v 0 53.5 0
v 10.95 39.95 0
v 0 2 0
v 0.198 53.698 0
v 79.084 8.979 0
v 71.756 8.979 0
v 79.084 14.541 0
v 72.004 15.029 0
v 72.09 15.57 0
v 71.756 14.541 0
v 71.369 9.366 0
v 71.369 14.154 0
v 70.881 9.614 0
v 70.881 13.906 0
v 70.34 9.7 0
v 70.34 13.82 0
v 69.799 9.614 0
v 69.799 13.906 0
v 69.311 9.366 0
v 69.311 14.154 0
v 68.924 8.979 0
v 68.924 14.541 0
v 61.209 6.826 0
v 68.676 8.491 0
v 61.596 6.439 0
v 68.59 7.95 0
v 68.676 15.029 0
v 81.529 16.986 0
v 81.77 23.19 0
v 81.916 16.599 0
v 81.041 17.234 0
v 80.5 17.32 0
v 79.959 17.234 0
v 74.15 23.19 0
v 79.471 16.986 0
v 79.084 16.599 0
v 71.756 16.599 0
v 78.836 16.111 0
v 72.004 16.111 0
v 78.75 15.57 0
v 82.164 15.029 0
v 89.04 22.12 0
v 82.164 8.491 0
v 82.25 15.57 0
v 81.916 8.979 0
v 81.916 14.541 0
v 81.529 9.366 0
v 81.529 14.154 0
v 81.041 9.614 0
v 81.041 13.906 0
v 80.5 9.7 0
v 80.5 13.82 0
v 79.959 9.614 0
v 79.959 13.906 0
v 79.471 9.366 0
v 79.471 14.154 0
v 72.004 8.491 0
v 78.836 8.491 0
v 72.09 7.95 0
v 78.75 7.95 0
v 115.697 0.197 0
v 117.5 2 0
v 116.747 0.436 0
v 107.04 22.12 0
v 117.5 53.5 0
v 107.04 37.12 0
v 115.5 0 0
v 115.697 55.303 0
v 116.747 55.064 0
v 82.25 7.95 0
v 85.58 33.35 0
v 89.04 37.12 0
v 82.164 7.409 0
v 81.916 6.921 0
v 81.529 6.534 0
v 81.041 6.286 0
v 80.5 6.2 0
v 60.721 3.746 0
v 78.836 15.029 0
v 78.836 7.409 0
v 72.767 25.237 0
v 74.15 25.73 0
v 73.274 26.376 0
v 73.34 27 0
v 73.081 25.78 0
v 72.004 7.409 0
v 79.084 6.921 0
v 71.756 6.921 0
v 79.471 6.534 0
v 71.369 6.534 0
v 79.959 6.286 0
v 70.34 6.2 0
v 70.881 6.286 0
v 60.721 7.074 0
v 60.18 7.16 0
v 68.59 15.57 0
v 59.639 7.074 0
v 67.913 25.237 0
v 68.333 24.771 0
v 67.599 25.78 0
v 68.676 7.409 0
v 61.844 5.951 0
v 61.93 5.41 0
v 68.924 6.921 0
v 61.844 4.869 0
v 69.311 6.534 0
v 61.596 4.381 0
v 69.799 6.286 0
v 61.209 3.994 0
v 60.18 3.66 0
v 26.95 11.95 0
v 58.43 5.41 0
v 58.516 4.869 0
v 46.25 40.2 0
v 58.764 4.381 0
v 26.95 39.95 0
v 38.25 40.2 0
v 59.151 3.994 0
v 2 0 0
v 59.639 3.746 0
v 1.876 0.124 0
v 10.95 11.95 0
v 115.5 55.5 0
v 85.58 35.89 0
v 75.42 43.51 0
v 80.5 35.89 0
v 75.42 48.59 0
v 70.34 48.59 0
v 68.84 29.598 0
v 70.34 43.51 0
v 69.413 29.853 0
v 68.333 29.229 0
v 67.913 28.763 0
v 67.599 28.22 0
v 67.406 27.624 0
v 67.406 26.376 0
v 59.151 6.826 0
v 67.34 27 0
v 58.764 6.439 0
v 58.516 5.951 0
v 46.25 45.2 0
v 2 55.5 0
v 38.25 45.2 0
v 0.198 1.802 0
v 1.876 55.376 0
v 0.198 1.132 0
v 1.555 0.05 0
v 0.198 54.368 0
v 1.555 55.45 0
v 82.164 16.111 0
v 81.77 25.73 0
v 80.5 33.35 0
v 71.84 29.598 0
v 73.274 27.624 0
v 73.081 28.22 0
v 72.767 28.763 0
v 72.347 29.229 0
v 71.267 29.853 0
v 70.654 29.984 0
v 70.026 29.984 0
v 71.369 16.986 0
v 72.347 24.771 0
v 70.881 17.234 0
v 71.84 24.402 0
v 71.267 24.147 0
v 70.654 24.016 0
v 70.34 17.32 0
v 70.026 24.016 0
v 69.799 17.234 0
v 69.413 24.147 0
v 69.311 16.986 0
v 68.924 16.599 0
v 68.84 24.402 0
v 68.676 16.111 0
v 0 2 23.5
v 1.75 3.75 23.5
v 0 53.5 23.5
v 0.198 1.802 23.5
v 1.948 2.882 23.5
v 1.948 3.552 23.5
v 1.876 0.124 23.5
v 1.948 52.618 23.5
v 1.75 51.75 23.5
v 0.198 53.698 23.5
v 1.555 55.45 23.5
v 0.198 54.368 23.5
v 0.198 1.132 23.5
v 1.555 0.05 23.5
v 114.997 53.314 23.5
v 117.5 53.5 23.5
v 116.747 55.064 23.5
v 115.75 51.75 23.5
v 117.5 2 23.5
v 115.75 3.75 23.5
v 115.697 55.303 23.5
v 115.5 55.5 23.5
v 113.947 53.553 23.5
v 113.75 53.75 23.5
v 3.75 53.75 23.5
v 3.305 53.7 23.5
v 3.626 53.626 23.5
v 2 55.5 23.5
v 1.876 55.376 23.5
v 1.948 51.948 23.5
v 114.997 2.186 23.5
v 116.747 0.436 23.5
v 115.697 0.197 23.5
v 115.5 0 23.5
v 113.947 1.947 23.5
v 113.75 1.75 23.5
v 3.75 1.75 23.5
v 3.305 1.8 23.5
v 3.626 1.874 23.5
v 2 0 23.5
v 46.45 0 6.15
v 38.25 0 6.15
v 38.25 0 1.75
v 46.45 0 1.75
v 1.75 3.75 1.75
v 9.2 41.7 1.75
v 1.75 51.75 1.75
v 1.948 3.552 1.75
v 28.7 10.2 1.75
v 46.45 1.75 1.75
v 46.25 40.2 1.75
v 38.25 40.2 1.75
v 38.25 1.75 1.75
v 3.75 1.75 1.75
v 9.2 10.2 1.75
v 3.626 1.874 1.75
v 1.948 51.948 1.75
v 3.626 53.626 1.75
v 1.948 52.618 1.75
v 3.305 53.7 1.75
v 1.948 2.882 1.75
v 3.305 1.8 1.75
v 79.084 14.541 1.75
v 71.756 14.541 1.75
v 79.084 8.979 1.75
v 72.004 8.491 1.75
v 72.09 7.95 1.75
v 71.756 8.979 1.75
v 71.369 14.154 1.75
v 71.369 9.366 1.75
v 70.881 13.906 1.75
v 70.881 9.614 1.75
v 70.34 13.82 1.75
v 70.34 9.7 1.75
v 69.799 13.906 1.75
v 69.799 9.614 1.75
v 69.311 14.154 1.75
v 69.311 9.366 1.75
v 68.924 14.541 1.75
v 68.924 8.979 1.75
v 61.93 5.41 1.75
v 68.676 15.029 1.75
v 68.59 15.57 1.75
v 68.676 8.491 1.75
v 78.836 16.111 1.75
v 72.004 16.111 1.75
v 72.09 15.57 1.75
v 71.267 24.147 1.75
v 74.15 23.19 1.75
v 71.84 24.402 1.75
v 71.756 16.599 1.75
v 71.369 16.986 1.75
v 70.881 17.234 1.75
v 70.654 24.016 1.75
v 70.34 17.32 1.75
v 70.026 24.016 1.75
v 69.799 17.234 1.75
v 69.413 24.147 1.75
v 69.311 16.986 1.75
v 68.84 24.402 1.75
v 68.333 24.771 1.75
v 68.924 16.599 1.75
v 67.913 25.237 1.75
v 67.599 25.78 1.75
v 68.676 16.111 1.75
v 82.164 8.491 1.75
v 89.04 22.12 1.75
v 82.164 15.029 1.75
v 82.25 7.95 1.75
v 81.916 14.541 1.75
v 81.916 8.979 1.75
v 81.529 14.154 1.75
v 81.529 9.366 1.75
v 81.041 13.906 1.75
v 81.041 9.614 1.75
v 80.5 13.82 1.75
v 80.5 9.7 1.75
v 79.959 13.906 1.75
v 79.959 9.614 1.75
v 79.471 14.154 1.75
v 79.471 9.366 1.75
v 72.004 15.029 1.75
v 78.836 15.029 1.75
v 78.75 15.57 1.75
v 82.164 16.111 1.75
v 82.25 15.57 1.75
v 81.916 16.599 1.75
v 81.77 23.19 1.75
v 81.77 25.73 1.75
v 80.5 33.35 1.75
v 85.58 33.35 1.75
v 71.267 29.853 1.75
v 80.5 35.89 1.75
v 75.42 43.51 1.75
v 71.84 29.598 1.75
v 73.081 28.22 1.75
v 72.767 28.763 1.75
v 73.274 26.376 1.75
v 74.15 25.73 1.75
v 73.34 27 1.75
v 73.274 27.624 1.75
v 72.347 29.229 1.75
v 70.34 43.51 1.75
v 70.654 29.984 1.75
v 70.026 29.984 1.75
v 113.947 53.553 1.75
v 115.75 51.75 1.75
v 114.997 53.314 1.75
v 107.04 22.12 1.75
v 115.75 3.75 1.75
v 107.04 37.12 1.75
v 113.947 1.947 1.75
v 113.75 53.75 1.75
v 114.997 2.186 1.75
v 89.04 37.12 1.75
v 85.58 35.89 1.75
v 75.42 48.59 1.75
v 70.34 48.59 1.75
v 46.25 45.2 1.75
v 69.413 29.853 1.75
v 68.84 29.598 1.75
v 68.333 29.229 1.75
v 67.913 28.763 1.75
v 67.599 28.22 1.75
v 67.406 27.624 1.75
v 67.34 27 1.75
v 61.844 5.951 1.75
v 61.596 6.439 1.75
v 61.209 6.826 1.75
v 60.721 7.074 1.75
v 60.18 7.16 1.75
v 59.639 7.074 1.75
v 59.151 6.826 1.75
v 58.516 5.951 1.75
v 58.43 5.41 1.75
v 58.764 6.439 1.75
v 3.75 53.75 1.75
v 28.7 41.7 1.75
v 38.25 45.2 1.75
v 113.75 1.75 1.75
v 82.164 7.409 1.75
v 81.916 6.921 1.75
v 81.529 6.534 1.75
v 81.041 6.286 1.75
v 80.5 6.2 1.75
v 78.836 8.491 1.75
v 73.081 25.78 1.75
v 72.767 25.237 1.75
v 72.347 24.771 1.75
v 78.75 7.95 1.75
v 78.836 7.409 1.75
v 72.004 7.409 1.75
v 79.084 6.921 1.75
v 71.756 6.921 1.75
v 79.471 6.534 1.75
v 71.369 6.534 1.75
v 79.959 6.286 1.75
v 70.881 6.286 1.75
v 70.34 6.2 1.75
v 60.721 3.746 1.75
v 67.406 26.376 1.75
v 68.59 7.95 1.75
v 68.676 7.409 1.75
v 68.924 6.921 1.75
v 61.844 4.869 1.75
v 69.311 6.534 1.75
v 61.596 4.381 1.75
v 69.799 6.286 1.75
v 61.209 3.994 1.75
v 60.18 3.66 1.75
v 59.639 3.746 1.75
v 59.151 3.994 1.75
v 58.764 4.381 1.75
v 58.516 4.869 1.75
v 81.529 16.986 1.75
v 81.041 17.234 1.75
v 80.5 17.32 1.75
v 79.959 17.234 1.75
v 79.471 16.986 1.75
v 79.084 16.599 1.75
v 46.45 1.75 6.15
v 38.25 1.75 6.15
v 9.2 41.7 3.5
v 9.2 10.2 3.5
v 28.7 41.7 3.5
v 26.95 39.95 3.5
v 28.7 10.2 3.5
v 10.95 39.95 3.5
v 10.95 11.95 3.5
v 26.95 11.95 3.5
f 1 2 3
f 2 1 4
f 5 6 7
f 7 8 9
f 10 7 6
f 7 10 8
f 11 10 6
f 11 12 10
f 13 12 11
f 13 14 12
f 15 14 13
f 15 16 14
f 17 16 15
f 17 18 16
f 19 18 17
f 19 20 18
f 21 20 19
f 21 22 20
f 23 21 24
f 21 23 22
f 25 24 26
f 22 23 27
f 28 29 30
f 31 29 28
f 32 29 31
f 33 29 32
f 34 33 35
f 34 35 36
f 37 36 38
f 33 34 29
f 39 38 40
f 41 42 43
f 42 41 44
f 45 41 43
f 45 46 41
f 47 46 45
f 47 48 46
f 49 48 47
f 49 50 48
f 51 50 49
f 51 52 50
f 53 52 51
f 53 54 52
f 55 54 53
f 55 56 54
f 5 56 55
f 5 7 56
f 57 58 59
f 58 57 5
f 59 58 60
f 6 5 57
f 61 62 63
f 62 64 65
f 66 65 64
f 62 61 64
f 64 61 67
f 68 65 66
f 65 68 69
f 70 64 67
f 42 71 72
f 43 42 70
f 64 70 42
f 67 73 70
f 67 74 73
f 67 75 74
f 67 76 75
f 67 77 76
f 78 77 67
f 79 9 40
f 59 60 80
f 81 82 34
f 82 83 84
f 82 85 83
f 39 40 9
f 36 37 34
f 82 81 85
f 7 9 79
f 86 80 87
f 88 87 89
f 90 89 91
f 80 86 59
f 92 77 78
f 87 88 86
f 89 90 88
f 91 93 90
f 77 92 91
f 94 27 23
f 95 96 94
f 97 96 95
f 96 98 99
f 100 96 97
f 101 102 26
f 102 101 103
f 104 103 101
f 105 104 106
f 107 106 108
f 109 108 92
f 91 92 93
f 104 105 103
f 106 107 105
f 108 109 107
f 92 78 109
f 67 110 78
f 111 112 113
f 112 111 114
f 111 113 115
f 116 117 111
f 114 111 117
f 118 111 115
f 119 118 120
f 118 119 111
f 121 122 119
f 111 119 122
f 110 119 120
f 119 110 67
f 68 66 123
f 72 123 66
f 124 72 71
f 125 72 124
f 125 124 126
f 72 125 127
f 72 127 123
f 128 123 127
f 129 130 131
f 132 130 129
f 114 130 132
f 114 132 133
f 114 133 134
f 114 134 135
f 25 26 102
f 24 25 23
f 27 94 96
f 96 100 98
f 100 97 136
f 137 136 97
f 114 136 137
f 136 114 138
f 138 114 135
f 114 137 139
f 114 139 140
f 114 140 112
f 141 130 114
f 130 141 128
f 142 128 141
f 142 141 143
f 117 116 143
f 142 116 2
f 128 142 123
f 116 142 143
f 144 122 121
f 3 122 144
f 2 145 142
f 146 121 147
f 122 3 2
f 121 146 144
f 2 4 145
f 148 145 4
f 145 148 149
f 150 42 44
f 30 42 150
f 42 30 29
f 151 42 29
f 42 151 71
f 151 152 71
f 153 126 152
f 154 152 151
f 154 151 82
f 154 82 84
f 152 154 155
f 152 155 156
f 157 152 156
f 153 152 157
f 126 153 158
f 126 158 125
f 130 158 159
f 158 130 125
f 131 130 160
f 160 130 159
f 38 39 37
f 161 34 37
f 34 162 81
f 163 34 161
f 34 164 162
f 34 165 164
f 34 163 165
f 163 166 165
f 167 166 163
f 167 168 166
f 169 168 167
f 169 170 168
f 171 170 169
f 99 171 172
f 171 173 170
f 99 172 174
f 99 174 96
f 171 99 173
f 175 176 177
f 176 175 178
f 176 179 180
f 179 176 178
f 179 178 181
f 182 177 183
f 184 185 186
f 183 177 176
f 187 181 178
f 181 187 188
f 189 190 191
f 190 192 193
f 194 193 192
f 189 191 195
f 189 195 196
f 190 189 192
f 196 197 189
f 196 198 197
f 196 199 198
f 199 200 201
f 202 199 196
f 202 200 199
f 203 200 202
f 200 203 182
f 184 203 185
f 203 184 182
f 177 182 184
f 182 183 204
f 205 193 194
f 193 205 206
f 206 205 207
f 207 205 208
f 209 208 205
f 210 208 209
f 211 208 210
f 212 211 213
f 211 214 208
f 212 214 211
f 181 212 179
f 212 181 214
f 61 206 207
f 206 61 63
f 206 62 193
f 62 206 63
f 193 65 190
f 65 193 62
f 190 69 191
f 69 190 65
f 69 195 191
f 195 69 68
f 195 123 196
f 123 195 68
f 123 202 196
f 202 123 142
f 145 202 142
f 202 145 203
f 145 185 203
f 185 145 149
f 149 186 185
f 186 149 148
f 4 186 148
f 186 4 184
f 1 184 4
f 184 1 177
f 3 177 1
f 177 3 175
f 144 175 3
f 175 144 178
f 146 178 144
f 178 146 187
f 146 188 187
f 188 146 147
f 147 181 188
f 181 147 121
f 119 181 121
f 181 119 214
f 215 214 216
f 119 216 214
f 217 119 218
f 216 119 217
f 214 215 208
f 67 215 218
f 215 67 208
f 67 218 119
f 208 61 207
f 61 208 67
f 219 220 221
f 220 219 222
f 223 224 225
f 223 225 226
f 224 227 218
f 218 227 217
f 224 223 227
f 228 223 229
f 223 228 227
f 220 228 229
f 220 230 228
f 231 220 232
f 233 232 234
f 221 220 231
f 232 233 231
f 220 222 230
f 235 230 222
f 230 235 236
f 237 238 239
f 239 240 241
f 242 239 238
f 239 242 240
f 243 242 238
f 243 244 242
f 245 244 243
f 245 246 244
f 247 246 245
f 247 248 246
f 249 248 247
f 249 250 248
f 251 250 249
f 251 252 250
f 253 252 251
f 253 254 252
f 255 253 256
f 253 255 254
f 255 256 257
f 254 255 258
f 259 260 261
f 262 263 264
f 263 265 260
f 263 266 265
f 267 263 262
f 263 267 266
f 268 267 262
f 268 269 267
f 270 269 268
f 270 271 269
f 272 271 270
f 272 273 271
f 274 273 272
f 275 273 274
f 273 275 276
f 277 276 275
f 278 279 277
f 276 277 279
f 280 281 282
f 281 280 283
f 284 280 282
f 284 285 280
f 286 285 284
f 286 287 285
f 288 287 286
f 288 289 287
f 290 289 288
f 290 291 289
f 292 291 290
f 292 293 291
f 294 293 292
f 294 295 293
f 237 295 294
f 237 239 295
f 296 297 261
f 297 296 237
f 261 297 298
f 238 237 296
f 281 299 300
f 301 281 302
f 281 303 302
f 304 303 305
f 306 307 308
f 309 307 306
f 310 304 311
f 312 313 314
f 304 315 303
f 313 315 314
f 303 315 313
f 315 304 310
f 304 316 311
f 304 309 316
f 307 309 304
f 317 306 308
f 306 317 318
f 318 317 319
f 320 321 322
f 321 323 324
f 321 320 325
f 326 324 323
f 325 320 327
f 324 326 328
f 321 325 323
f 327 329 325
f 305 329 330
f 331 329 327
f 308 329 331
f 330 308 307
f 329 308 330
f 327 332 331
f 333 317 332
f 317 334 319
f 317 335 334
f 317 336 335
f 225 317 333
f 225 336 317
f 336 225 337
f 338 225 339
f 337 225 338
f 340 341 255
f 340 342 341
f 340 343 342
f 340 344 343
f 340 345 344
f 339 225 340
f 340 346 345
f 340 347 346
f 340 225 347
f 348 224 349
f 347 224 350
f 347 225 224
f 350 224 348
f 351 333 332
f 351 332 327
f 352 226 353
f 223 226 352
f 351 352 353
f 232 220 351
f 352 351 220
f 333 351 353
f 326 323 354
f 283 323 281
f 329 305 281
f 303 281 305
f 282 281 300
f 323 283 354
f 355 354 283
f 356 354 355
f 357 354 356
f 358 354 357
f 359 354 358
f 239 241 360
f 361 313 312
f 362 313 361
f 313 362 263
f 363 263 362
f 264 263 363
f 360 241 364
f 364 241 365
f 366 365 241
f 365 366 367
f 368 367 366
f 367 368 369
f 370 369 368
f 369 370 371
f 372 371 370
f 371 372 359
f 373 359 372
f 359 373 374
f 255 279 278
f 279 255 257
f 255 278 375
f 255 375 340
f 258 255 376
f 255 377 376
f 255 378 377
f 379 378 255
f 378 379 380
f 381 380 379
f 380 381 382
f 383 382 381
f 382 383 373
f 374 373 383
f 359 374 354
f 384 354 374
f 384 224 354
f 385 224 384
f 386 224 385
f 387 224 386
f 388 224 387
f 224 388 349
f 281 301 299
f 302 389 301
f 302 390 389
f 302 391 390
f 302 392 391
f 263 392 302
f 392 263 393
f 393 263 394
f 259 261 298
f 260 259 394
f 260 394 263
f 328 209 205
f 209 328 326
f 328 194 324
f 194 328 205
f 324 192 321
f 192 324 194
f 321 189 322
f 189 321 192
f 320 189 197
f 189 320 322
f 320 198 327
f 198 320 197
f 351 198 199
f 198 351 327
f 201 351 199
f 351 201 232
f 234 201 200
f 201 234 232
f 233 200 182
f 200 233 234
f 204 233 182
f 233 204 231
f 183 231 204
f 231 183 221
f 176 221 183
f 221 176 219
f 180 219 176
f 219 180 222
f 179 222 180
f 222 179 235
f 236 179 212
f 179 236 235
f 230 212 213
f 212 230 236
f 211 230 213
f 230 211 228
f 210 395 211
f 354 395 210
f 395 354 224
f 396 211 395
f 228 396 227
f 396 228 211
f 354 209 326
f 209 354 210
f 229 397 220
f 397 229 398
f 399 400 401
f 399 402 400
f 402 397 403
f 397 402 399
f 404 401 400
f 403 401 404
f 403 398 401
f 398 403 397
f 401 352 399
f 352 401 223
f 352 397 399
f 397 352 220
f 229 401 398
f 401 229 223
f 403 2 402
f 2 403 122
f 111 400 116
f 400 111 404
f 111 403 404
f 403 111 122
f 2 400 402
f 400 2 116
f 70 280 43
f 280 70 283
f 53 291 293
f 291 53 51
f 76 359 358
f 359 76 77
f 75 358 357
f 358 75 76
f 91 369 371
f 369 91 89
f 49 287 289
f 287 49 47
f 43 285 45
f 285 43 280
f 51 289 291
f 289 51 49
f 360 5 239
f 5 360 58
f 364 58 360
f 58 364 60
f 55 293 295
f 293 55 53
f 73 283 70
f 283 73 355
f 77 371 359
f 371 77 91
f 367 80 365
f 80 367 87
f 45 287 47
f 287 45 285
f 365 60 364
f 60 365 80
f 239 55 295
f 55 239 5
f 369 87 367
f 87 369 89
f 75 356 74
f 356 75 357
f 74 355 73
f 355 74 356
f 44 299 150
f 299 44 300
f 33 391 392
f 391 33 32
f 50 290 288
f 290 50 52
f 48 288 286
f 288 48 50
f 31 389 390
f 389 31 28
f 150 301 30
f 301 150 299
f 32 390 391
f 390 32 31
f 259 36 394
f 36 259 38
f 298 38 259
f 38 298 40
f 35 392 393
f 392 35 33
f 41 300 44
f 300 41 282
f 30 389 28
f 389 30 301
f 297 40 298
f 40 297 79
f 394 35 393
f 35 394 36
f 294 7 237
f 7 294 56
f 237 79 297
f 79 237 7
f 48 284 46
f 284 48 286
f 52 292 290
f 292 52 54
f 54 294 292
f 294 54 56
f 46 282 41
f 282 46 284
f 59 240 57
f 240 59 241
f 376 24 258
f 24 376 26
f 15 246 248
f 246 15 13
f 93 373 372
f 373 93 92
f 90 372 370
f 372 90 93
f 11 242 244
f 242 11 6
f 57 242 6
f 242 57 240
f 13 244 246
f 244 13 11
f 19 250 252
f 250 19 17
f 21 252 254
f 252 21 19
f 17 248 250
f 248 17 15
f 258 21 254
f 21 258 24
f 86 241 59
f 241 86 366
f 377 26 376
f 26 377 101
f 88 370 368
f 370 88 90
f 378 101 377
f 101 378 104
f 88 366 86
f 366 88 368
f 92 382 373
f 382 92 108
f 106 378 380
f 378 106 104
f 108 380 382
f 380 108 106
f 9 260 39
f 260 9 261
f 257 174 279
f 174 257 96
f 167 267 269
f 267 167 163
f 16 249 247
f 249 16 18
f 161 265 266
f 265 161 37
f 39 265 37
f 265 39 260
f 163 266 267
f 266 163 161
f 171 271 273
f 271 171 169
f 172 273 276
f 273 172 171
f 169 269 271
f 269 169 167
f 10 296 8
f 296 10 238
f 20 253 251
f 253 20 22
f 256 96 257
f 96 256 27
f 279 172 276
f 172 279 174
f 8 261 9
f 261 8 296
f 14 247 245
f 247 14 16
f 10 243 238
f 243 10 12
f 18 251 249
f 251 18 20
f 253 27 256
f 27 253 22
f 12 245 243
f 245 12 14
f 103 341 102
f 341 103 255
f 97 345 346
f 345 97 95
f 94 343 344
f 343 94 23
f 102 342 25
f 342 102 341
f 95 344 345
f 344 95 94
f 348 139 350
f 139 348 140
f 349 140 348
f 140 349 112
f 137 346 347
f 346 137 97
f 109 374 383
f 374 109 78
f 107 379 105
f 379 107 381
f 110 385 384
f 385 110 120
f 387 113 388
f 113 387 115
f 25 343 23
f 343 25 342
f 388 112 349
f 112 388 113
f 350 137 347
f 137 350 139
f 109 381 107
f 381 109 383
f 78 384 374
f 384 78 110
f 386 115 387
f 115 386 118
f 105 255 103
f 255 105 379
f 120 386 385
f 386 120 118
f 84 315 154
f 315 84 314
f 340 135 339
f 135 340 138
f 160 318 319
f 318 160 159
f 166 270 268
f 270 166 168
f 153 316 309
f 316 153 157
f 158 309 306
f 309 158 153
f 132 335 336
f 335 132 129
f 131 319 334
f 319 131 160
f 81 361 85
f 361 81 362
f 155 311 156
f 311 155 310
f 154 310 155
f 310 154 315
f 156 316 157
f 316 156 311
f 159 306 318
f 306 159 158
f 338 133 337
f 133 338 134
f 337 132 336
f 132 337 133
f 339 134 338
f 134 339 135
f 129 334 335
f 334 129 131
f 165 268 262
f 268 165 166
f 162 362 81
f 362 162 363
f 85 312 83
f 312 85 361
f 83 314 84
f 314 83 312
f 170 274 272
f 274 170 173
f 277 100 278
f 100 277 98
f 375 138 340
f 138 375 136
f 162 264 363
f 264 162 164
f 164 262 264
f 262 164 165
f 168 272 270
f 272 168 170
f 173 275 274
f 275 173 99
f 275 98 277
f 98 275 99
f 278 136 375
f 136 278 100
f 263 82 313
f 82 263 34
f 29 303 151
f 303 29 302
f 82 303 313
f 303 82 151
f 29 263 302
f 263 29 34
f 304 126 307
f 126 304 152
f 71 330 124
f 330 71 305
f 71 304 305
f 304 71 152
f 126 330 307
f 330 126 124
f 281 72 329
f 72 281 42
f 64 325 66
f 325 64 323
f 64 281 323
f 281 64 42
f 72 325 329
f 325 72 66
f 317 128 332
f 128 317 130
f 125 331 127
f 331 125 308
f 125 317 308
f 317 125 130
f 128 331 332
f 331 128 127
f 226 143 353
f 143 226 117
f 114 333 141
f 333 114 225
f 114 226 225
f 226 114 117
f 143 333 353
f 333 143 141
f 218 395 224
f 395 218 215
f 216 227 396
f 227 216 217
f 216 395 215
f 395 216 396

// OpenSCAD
// Default is the working fine version/no sticker on screen

WallThickness = 1.75;
BaseHeight = 20+2*WallThickness;
BaseDepth = 52+2*WallThickness;;
BaseWidth = 114+2*WallThickness;
CornerRadius = 2;
ScreenWidth = 28;
ScreenHeight = 16;
ScreenX = 9.2+WallThickness;
ScreenY = 10.2+WallThickness;
FirstButtonX = 33.5+WallThickness;
FirstButtonY = 6.2+WallThickness;
ButtonSize = 3.5;
ButtonStep = 2.54;

module RoundedRectangle($Width=BaseWidth, $Depth=BaseDepth, $Radius=CornerRadius) 
{
    polygon(points = [[$Radius, 0], [$Width-$Radius, 0],[$Width, $Radius], [$Width, $Depth-$Radius], [$Width-$Radius, $Depth], [$Radius, $Depth], [0, $Depth-$Radius], [0, $Radius]], paths=[[0,1,2,3,4,5,6,7]]);
        
    translate([$Radius,$Radius,0]){
        circle(r=$Radius);
    }        
    translate([$Width-$Radius,$Radius,0]){
        circle(r=$Radius);
    }
    
    translate([$Width-$Radius,$Depth-$Radius,0]){ 
        circle(r=$Radius);
    }
   
    translate([$Radius,$Depth-$Radius,0]){ 
        circle(r=$Radius);
    }
}

module base3D($Width=BaseWidth, $Depth=BaseDepth, $Height=BaseHeight, $Radius=CornerRadius, $Thickness=WallThickness)
{
    difference()
    {
        linear_extrude(height = $Height, center = false, convexity = 0, twist = 0)
        RoundedRectangle($Width, $Depth, $Radius);
        translate([$Thickness, $Thickness, $Thickness]) {
        linear_extrude(height = $Height, center = false, convexity = 0, twist = 0)
        RoundedRectangle($Width-$Thickness*2, $Depth-$Thickness*2, $Radius);
        }
    }
}

difference() {
    
    union() {
    translate([ScreenX-WallThickness, ScreenY-WallThickness])
        cube(size=[ScreenHeight+WallThickness*2, ScreenWidth+WallThickness*2, WallThickness*2], center=false);

        base3D(BaseWidth, BaseDepth, BaseHeight, CornerRadius, WallThickness);
    }

    translate([ScreenX, ScreenY])
        cube(size=[ScreenHeight, ScreenWidth, WallThickness*2], center=false);
    
    // First Button - lower right most button
    translate([BaseWidth-WallThickness-FirstButtonX, FirstButtonY, 0])
        cylinder(h=WallThickness*2, d=ButtonSize, center=true , $fn=20);
    // Button to the left of the First button
    translate([BaseWidth-WallThickness-FirstButtonX, FirstButtonY+ButtonStep*3])
        cylinder(h=WallThickness*2, d=ButtonSize, center=true , $fn=20);
    // Button to the upper of the First button
    translate([BaseWidth-WallThickness-FirstButtonX-ButtonStep*4, FirstButtonY])
        cylinder(h=WallThickness*2, d=ButtonSize, center=true , $fn=20);
    // Button to the upper/left of the First button
    translate([BaseWidth-WallThickness-FirstButtonX-ButtonStep*4, FirstButtonY+ButtonStep*3])
        cylinder(h=WallThickness*2, d=ButtonSize, center=true , $fn=20);
    // Step Button
    translate([BaseWidth-WallThickness-FirstButtonX-ButtonStep*8, FirstButtonY-ButtonStep])
        cylinder(h=WallThickness*2, d=ButtonSize, center=true , $fn=20);
    // Adjustable Resistor blule/white
    translate([BaseWidth-WallThickness-FirstButtonX-ButtonStep*4, FirstButtonY+ButtonStep*7.5])
        cylinder(h=WallThickness*2, d=6, center=true , $fn=30);
    // Ground PINs
    translate([BaseWidth-WallThickness-FirstButtonX-ButtonStep, FirstButtonY+ButtonStep*6.5])
        cube(size=[ButtonStep*3, ButtonStep, WallThickness*2], center=true);
    // Amplified PINs
    translate([BaseWidth-WallThickness-FirstButtonX+ButtonStep, FirstButtonY+ButtonStep*10.5])
        cube(size=[ButtonStep*2, ButtonStep, WallThickness*2], center=true);
    // Amplifier power voltage adjust pin and big capacitor
    translate([BaseWidth-WallThickness-FirstButtonX+ButtonStep+15, FirstButtonY+ButtonStep*10.5-5])
        cube(size=[18, 15, WallThickness*2], center=true);
    // Normal and Buffered PINs
    translate([BaseWidth-WallThickness-FirstButtonX-3*ButtonStep, FirstButtonY+ButtonStep*15])
        cube(size=[ButtonStep*2, ButtonStep*2, WallThickness*2], center=true);
    // Nano onboard pins
    translate([36.5+WallThickness+4, ScreenY+ScreenWidth+WallThickness+1])
        cube(size=[8, 5, WallThickness*2], center=true);
    // Mini USB Hole
    translate([36.5+WallThickness, WallThickness, WallThickness])
        rotate([90, 0, 0])
            cube(size=[8.2, 4.4, WallThickness*2], center=false);
}

/*
translate([18+7, BaseDepth, BaseHeight/2-4])
 rotate([270, 0, 0])
    linear_extrude(height = WallThickness/2){
        text("IBE Group, Inc.", size=5, font="Arial Black");
}

translate([15+8, BaseDepth, BaseHeight-4])
rotate([270, 0, 0])
    linear_extrude(height = WallThickness/2){
        text("Copyright© 2019", size=5, font="Arial Black");
}
*/
